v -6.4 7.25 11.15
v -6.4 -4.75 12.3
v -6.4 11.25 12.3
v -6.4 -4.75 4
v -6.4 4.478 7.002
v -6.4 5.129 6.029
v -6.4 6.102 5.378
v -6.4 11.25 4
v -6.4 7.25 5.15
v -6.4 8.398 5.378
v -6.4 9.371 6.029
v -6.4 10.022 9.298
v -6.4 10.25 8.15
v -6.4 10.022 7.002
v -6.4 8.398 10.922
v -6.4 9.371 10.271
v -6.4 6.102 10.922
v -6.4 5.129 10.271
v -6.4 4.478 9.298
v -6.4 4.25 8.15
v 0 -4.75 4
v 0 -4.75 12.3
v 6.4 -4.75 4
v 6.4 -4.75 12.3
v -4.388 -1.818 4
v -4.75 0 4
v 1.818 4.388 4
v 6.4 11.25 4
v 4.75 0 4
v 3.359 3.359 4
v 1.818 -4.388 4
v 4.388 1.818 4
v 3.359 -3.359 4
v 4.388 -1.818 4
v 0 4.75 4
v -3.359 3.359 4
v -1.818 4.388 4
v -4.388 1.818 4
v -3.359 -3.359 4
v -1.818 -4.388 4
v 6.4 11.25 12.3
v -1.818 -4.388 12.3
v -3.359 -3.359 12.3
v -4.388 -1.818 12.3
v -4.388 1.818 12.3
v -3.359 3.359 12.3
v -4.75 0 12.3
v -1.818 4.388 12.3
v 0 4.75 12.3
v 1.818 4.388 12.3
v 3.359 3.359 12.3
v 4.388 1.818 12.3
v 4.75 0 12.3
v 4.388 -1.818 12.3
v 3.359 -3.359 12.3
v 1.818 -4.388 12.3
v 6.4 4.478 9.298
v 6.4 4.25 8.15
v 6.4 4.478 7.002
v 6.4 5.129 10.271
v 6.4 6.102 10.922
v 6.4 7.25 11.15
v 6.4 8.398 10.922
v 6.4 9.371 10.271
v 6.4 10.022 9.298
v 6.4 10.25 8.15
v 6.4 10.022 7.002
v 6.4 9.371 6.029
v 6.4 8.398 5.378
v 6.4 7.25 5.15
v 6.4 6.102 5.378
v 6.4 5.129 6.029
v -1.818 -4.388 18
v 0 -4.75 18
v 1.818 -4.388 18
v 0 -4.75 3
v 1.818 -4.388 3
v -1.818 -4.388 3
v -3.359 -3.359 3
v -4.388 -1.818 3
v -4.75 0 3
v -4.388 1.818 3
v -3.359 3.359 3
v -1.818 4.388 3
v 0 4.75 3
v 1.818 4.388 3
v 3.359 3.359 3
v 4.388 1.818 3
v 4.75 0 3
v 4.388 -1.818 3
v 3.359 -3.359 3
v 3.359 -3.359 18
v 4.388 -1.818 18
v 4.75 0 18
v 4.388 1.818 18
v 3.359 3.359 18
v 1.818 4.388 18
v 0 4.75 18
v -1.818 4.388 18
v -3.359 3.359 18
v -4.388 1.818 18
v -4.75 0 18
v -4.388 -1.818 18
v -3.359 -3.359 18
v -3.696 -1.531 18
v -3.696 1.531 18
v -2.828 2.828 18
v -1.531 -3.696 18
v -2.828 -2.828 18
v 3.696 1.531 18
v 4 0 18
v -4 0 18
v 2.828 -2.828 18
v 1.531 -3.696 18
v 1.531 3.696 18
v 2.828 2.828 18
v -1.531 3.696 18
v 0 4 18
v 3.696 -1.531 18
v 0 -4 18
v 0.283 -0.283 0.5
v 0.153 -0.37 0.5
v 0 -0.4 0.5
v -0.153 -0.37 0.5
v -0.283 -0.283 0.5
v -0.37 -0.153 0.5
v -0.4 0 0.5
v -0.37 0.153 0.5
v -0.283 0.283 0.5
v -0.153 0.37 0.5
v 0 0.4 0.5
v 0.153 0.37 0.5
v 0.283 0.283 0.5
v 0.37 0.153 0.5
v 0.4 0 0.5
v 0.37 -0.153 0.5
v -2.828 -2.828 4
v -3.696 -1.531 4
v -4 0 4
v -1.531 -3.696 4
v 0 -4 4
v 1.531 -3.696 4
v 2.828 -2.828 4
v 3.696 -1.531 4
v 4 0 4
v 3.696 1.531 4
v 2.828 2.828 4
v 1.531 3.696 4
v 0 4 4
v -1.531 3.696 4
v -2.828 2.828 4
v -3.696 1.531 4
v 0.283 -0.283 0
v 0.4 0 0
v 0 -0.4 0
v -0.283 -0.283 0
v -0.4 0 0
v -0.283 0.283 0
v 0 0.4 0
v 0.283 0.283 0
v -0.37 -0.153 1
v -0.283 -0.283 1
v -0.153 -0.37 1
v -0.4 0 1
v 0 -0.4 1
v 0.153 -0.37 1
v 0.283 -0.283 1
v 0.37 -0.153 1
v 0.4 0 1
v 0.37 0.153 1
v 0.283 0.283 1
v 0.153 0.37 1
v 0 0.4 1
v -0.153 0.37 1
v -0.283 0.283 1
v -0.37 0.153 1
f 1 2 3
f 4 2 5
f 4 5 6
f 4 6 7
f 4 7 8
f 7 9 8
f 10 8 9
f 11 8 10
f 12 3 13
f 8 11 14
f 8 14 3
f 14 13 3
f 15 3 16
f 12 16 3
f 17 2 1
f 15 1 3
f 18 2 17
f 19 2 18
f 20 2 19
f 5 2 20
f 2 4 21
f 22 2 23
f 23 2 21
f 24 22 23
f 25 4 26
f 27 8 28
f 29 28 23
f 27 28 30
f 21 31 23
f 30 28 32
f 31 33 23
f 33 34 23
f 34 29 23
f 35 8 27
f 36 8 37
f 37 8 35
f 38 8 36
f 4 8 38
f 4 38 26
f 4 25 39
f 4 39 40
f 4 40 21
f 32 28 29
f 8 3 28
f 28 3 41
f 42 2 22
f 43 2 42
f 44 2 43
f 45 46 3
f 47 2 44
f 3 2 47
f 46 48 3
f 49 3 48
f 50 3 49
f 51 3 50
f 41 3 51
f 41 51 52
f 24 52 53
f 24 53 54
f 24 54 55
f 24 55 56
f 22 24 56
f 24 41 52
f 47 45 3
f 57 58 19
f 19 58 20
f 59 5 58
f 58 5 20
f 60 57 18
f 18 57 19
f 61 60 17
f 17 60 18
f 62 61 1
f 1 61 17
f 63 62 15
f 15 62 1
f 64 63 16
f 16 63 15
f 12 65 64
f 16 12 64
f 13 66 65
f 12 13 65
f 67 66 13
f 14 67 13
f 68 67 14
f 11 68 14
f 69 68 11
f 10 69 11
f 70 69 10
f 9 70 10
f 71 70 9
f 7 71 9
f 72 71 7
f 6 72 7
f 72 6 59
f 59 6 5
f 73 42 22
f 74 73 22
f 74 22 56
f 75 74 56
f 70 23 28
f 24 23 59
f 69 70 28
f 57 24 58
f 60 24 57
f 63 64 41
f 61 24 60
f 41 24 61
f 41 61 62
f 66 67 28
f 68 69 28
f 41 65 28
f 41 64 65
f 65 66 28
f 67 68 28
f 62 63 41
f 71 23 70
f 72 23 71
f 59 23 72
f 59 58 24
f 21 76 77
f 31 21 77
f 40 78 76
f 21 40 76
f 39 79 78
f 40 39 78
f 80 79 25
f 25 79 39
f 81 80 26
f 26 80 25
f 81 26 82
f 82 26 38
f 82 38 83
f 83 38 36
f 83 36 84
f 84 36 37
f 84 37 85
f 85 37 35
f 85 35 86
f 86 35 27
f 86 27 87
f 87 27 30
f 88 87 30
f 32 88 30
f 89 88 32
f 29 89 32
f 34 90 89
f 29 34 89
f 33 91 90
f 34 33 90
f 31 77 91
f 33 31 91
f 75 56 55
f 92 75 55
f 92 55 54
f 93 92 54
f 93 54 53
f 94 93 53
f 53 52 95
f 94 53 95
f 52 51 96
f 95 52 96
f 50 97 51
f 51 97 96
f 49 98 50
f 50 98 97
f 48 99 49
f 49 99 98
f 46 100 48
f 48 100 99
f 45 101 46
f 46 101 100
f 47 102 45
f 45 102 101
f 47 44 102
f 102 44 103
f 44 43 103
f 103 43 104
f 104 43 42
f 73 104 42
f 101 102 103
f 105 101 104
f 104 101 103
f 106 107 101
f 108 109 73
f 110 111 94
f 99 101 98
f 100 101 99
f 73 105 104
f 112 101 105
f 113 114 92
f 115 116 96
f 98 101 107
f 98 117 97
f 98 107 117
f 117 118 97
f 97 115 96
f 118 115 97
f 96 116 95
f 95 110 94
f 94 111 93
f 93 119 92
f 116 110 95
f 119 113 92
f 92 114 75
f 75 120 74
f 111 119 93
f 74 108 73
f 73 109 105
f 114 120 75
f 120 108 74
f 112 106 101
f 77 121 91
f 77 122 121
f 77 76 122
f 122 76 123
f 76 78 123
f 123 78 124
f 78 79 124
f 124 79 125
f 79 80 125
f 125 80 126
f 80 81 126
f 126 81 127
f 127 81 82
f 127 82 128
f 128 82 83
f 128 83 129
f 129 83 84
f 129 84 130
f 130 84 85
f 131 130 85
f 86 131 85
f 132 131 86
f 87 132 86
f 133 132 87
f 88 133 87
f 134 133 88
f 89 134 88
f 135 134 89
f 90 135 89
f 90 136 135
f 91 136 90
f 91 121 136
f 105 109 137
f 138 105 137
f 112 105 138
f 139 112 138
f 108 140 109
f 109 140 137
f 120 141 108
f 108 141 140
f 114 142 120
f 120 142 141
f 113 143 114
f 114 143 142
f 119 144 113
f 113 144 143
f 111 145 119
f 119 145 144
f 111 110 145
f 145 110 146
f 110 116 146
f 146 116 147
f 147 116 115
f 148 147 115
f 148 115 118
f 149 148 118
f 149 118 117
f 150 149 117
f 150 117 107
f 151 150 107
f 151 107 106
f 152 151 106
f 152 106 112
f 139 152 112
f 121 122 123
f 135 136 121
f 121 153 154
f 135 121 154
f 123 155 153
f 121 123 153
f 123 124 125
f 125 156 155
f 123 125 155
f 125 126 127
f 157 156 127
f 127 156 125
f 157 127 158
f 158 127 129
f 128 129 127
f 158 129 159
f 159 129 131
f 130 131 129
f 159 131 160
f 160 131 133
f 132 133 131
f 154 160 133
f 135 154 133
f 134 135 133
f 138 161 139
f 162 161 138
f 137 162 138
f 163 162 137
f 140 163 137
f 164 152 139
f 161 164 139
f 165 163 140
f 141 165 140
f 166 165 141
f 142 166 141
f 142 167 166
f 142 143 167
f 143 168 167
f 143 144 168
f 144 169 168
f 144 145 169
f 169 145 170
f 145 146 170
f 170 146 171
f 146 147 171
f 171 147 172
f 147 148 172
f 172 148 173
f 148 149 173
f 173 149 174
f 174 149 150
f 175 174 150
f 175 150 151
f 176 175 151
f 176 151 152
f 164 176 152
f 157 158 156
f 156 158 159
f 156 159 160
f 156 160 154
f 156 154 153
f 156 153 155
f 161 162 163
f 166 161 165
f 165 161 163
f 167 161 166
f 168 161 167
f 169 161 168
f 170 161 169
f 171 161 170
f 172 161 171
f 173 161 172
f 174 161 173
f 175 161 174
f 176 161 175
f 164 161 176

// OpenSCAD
/*
 * Thid is only for my reprap simulator in simavr
 */
$fn = 16;

E = 0.00;
blocksize = [12.8, 16, 8.3];
conesize= [0.4, 9.5, 2.5];

translate(-[blocksize[0] / 2, conesize[1] / 2, 0])
	difference() {
		out();
		in();
	//	translate([-1,-1,-1]) cube([blocksize[0]+2,conesize[1] / 2,20]);
	}

module out() union() {
	translate([0,0,conesize[2] + 0.5 + 1])
		cube(blocksize);
	
	translate([blocksize[0] / 2, conesize[1] / 2, 0]) {
		cylinder(r = conesize[0], h = 0.5 + E, $fn = 8);
		translate([0,0,0.5]) {
			cylinder(r1 = conesize[0], r = conesize[1]/2, h = conesize[2] + E);
			translate([0,0,conesize[2]]) 
				cylinder(r = conesize[1]/2, h = 15);
		}
	}
}	

module in() union() {
	translate([blocksize[0] / 2, conesize[1] / 2, -E]) {
	//	cylinder(r = conesize[0]/2, h = 2);
		translate([0,0,0.5+0.5]) {
			cylinder(r1 = conesize[0], r = E+(conesize[1]-1.5)/2, h = conesize[2] + 0.5+E);
			translate([0,0,conesize[2]+0.5]) 
				cylinder(r = (conesize[1]-1.5)/2, h = 15);
		}
	}
	translate([-1, blocksize[1] - 4, 
			conesize[2] + 0.5 + 1 + (blocksize[2]/2)]) {
		rotate([0,90,0])
		 cylinder(r = 6/2, h = blocksize[0] + 2);
	}
}
